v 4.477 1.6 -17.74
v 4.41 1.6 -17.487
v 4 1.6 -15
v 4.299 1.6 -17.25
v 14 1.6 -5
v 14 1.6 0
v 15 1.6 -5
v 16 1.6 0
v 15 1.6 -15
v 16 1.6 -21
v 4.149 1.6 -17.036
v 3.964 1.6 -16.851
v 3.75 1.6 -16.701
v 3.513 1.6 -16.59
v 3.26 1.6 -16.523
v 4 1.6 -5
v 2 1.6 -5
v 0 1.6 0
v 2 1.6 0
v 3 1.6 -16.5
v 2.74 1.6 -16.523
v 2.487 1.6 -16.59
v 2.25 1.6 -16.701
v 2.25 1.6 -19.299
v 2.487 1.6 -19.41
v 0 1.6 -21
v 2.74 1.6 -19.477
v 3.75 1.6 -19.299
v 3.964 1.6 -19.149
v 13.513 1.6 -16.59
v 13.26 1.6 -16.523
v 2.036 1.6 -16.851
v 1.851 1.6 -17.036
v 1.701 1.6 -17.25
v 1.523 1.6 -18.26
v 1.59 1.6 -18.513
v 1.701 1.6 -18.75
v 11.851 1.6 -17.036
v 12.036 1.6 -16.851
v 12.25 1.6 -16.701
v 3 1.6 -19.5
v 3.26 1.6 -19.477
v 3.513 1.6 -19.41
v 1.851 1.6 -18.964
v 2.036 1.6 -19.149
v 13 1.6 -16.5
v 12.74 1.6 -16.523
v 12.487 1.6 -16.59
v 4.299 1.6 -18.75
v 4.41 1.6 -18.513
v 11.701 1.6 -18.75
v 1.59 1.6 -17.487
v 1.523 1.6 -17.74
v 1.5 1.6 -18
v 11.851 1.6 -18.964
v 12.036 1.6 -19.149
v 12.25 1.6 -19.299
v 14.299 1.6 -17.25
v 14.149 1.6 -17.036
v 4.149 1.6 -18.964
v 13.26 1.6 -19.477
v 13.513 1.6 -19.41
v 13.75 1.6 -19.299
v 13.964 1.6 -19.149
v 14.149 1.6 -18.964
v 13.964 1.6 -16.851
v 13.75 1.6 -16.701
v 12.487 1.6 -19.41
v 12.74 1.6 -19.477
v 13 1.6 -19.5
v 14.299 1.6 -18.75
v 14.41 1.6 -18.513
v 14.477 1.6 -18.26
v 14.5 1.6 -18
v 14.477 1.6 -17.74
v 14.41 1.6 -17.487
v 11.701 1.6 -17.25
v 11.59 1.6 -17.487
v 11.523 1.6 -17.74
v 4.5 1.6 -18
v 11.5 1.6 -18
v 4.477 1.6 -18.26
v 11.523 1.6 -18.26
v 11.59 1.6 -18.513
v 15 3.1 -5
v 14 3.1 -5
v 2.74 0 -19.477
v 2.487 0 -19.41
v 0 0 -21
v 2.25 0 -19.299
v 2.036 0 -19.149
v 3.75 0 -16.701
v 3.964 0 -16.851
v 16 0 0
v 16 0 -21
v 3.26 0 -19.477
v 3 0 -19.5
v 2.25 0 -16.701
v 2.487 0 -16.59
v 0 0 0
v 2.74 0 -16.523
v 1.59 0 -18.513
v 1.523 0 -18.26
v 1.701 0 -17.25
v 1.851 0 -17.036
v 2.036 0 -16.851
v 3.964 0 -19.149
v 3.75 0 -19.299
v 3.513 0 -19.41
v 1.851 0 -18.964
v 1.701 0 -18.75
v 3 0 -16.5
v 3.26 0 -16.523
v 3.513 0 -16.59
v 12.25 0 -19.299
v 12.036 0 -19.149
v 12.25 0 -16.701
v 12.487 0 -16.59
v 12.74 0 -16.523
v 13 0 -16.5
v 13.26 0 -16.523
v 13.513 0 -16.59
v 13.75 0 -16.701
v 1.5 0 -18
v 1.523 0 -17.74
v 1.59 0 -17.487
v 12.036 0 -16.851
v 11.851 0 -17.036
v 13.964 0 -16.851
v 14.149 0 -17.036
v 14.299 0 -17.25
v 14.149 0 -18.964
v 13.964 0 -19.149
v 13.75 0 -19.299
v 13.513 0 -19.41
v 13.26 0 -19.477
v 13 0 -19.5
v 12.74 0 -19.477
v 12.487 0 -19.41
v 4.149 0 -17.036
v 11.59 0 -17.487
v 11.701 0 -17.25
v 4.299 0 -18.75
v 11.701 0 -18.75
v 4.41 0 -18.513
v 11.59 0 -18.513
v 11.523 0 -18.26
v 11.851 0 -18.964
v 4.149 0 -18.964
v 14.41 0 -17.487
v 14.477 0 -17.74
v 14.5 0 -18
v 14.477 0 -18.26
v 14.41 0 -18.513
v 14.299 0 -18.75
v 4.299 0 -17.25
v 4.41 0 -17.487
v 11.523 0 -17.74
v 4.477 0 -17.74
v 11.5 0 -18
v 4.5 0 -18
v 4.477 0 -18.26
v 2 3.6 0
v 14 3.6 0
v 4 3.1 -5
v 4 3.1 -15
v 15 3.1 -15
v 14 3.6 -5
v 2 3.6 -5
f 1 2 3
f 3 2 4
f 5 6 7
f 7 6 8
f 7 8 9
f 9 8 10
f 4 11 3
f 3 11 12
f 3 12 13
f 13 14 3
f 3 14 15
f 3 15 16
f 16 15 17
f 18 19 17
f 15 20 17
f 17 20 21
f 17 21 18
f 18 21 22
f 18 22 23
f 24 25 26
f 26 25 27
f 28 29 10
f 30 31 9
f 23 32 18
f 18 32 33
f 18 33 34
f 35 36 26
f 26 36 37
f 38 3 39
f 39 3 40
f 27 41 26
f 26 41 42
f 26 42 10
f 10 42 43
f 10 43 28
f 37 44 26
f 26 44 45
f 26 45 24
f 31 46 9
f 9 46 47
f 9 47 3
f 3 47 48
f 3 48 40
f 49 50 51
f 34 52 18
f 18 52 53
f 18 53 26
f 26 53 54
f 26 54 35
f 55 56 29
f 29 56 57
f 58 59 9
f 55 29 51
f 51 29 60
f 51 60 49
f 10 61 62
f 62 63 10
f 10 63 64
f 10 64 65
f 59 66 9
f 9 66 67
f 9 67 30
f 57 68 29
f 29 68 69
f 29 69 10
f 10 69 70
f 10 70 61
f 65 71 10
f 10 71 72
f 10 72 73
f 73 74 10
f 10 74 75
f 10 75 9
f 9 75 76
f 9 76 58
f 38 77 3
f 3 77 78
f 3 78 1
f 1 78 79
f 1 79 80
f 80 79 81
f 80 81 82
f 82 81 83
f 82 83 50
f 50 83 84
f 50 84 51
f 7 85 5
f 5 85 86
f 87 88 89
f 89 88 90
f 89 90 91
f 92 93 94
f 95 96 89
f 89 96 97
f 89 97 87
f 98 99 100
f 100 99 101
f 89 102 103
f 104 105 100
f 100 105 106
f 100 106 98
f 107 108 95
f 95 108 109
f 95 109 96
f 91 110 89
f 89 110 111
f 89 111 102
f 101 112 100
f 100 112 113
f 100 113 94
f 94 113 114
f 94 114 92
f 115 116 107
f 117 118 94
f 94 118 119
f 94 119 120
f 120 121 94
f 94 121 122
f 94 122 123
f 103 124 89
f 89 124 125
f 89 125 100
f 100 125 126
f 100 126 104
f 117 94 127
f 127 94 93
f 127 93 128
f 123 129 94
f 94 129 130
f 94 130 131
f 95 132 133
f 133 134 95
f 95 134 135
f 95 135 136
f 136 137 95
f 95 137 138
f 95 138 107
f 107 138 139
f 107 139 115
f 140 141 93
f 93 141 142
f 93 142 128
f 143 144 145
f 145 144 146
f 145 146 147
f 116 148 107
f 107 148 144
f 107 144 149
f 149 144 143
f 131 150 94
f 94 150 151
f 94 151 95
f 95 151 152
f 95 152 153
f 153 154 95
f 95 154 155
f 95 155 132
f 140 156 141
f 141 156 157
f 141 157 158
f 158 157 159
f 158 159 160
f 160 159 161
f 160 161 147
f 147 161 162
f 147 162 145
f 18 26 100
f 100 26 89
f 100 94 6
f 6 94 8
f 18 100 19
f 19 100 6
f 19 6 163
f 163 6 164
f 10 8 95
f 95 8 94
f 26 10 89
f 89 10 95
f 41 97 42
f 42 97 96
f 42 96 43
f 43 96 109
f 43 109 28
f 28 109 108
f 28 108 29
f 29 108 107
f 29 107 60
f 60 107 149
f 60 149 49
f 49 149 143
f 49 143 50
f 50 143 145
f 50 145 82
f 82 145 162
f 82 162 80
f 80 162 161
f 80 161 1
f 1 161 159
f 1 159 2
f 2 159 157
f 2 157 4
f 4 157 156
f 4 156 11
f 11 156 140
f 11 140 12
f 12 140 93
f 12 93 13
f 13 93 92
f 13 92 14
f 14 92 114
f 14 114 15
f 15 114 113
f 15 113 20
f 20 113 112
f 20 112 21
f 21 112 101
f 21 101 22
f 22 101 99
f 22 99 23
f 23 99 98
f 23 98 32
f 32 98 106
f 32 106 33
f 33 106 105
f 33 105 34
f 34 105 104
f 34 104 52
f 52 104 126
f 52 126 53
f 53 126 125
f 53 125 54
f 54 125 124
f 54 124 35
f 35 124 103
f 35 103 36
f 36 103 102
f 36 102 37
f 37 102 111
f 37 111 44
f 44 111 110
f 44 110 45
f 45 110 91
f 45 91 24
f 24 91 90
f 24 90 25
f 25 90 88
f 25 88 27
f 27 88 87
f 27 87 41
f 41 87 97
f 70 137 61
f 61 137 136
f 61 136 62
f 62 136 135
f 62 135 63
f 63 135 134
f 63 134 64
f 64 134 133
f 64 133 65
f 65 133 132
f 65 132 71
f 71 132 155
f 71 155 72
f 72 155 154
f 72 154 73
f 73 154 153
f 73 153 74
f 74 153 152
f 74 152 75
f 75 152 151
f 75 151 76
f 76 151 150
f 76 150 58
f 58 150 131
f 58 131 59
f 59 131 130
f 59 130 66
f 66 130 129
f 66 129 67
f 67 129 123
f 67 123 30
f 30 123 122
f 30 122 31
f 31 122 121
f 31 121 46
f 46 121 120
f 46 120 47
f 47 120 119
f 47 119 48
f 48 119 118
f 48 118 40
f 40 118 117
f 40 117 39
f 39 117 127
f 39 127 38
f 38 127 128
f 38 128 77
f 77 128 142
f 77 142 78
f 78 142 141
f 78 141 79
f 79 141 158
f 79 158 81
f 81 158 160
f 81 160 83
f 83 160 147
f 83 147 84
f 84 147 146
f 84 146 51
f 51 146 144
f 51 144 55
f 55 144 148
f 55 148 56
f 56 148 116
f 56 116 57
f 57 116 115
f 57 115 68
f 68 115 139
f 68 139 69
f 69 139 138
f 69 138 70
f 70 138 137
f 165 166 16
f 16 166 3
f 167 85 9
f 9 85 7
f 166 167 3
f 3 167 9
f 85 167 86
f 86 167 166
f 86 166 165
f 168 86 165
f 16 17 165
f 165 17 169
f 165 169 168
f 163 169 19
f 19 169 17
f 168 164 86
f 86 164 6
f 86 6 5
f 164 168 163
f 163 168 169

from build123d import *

# Parameters (mm, degrees)
SKETCH1_W           = 16
SKETCH1_H           = 21
SKETCH1_R           = 1.5
BOSS_EXTRUDE1_DEPTH = 1.6
SKETCH2_W           = 11
SKETCH2_H           = 10
BOSS_EXTRUDE2_DEPTH = 1.5
SKETCH3_W           = 12
SKETCH3_H           = 5
BOSS_EXTRUDE3_DEPTH = 2


with BuildPart() as part:
    # Sketch1 → Boss-Extrude1 (new body)
    with BuildSketch(Plane(origin=(0, 0, 0), x_dir=(1, 0, 0), z_dir=(0, 1, 0))):
        with Locations((8, 10.5)):
            Rectangle(SKETCH1_W, SKETCH1_H)
        with Locations(Location((3, 18, 0), (0, 0, 270))):
            Circle(SKETCH1_R, mode=Mode.SUBTRACT)
        with Locations(Location((13, 18, 0), (0, 0, 270))):
            Circle(SKETCH1_R, mode=Mode.SUBTRACT)
    extrude(amount=BOSS_EXTRUDE1_DEPTH)

    # Sketch2 → Boss-Extrude2 (add)
    with BuildSketch(Plane(origin=(0, 1.6, 0), x_dir=(1, 0, 0), z_dir=(0, 1, 0))):
        with Locations((9.5, 10)):
            Rectangle(SKETCH2_W, SKETCH2_H)
    extrude(amount=BOSS_EXTRUDE2_DEPTH)

    # Sketch3 → Boss-Extrude3 (add)
    with BuildSketch(Plane(origin=(0, 1.6, 0), x_dir=(1, 0, 0), z_dir=(0, 1, 0))):
        with Locations((8, 2.5)):
            Rectangle(SKETCH3_W, SKETCH3_H)
    extrude(amount=BOSS_EXTRUDE3_DEPTH)


solid = part.part
